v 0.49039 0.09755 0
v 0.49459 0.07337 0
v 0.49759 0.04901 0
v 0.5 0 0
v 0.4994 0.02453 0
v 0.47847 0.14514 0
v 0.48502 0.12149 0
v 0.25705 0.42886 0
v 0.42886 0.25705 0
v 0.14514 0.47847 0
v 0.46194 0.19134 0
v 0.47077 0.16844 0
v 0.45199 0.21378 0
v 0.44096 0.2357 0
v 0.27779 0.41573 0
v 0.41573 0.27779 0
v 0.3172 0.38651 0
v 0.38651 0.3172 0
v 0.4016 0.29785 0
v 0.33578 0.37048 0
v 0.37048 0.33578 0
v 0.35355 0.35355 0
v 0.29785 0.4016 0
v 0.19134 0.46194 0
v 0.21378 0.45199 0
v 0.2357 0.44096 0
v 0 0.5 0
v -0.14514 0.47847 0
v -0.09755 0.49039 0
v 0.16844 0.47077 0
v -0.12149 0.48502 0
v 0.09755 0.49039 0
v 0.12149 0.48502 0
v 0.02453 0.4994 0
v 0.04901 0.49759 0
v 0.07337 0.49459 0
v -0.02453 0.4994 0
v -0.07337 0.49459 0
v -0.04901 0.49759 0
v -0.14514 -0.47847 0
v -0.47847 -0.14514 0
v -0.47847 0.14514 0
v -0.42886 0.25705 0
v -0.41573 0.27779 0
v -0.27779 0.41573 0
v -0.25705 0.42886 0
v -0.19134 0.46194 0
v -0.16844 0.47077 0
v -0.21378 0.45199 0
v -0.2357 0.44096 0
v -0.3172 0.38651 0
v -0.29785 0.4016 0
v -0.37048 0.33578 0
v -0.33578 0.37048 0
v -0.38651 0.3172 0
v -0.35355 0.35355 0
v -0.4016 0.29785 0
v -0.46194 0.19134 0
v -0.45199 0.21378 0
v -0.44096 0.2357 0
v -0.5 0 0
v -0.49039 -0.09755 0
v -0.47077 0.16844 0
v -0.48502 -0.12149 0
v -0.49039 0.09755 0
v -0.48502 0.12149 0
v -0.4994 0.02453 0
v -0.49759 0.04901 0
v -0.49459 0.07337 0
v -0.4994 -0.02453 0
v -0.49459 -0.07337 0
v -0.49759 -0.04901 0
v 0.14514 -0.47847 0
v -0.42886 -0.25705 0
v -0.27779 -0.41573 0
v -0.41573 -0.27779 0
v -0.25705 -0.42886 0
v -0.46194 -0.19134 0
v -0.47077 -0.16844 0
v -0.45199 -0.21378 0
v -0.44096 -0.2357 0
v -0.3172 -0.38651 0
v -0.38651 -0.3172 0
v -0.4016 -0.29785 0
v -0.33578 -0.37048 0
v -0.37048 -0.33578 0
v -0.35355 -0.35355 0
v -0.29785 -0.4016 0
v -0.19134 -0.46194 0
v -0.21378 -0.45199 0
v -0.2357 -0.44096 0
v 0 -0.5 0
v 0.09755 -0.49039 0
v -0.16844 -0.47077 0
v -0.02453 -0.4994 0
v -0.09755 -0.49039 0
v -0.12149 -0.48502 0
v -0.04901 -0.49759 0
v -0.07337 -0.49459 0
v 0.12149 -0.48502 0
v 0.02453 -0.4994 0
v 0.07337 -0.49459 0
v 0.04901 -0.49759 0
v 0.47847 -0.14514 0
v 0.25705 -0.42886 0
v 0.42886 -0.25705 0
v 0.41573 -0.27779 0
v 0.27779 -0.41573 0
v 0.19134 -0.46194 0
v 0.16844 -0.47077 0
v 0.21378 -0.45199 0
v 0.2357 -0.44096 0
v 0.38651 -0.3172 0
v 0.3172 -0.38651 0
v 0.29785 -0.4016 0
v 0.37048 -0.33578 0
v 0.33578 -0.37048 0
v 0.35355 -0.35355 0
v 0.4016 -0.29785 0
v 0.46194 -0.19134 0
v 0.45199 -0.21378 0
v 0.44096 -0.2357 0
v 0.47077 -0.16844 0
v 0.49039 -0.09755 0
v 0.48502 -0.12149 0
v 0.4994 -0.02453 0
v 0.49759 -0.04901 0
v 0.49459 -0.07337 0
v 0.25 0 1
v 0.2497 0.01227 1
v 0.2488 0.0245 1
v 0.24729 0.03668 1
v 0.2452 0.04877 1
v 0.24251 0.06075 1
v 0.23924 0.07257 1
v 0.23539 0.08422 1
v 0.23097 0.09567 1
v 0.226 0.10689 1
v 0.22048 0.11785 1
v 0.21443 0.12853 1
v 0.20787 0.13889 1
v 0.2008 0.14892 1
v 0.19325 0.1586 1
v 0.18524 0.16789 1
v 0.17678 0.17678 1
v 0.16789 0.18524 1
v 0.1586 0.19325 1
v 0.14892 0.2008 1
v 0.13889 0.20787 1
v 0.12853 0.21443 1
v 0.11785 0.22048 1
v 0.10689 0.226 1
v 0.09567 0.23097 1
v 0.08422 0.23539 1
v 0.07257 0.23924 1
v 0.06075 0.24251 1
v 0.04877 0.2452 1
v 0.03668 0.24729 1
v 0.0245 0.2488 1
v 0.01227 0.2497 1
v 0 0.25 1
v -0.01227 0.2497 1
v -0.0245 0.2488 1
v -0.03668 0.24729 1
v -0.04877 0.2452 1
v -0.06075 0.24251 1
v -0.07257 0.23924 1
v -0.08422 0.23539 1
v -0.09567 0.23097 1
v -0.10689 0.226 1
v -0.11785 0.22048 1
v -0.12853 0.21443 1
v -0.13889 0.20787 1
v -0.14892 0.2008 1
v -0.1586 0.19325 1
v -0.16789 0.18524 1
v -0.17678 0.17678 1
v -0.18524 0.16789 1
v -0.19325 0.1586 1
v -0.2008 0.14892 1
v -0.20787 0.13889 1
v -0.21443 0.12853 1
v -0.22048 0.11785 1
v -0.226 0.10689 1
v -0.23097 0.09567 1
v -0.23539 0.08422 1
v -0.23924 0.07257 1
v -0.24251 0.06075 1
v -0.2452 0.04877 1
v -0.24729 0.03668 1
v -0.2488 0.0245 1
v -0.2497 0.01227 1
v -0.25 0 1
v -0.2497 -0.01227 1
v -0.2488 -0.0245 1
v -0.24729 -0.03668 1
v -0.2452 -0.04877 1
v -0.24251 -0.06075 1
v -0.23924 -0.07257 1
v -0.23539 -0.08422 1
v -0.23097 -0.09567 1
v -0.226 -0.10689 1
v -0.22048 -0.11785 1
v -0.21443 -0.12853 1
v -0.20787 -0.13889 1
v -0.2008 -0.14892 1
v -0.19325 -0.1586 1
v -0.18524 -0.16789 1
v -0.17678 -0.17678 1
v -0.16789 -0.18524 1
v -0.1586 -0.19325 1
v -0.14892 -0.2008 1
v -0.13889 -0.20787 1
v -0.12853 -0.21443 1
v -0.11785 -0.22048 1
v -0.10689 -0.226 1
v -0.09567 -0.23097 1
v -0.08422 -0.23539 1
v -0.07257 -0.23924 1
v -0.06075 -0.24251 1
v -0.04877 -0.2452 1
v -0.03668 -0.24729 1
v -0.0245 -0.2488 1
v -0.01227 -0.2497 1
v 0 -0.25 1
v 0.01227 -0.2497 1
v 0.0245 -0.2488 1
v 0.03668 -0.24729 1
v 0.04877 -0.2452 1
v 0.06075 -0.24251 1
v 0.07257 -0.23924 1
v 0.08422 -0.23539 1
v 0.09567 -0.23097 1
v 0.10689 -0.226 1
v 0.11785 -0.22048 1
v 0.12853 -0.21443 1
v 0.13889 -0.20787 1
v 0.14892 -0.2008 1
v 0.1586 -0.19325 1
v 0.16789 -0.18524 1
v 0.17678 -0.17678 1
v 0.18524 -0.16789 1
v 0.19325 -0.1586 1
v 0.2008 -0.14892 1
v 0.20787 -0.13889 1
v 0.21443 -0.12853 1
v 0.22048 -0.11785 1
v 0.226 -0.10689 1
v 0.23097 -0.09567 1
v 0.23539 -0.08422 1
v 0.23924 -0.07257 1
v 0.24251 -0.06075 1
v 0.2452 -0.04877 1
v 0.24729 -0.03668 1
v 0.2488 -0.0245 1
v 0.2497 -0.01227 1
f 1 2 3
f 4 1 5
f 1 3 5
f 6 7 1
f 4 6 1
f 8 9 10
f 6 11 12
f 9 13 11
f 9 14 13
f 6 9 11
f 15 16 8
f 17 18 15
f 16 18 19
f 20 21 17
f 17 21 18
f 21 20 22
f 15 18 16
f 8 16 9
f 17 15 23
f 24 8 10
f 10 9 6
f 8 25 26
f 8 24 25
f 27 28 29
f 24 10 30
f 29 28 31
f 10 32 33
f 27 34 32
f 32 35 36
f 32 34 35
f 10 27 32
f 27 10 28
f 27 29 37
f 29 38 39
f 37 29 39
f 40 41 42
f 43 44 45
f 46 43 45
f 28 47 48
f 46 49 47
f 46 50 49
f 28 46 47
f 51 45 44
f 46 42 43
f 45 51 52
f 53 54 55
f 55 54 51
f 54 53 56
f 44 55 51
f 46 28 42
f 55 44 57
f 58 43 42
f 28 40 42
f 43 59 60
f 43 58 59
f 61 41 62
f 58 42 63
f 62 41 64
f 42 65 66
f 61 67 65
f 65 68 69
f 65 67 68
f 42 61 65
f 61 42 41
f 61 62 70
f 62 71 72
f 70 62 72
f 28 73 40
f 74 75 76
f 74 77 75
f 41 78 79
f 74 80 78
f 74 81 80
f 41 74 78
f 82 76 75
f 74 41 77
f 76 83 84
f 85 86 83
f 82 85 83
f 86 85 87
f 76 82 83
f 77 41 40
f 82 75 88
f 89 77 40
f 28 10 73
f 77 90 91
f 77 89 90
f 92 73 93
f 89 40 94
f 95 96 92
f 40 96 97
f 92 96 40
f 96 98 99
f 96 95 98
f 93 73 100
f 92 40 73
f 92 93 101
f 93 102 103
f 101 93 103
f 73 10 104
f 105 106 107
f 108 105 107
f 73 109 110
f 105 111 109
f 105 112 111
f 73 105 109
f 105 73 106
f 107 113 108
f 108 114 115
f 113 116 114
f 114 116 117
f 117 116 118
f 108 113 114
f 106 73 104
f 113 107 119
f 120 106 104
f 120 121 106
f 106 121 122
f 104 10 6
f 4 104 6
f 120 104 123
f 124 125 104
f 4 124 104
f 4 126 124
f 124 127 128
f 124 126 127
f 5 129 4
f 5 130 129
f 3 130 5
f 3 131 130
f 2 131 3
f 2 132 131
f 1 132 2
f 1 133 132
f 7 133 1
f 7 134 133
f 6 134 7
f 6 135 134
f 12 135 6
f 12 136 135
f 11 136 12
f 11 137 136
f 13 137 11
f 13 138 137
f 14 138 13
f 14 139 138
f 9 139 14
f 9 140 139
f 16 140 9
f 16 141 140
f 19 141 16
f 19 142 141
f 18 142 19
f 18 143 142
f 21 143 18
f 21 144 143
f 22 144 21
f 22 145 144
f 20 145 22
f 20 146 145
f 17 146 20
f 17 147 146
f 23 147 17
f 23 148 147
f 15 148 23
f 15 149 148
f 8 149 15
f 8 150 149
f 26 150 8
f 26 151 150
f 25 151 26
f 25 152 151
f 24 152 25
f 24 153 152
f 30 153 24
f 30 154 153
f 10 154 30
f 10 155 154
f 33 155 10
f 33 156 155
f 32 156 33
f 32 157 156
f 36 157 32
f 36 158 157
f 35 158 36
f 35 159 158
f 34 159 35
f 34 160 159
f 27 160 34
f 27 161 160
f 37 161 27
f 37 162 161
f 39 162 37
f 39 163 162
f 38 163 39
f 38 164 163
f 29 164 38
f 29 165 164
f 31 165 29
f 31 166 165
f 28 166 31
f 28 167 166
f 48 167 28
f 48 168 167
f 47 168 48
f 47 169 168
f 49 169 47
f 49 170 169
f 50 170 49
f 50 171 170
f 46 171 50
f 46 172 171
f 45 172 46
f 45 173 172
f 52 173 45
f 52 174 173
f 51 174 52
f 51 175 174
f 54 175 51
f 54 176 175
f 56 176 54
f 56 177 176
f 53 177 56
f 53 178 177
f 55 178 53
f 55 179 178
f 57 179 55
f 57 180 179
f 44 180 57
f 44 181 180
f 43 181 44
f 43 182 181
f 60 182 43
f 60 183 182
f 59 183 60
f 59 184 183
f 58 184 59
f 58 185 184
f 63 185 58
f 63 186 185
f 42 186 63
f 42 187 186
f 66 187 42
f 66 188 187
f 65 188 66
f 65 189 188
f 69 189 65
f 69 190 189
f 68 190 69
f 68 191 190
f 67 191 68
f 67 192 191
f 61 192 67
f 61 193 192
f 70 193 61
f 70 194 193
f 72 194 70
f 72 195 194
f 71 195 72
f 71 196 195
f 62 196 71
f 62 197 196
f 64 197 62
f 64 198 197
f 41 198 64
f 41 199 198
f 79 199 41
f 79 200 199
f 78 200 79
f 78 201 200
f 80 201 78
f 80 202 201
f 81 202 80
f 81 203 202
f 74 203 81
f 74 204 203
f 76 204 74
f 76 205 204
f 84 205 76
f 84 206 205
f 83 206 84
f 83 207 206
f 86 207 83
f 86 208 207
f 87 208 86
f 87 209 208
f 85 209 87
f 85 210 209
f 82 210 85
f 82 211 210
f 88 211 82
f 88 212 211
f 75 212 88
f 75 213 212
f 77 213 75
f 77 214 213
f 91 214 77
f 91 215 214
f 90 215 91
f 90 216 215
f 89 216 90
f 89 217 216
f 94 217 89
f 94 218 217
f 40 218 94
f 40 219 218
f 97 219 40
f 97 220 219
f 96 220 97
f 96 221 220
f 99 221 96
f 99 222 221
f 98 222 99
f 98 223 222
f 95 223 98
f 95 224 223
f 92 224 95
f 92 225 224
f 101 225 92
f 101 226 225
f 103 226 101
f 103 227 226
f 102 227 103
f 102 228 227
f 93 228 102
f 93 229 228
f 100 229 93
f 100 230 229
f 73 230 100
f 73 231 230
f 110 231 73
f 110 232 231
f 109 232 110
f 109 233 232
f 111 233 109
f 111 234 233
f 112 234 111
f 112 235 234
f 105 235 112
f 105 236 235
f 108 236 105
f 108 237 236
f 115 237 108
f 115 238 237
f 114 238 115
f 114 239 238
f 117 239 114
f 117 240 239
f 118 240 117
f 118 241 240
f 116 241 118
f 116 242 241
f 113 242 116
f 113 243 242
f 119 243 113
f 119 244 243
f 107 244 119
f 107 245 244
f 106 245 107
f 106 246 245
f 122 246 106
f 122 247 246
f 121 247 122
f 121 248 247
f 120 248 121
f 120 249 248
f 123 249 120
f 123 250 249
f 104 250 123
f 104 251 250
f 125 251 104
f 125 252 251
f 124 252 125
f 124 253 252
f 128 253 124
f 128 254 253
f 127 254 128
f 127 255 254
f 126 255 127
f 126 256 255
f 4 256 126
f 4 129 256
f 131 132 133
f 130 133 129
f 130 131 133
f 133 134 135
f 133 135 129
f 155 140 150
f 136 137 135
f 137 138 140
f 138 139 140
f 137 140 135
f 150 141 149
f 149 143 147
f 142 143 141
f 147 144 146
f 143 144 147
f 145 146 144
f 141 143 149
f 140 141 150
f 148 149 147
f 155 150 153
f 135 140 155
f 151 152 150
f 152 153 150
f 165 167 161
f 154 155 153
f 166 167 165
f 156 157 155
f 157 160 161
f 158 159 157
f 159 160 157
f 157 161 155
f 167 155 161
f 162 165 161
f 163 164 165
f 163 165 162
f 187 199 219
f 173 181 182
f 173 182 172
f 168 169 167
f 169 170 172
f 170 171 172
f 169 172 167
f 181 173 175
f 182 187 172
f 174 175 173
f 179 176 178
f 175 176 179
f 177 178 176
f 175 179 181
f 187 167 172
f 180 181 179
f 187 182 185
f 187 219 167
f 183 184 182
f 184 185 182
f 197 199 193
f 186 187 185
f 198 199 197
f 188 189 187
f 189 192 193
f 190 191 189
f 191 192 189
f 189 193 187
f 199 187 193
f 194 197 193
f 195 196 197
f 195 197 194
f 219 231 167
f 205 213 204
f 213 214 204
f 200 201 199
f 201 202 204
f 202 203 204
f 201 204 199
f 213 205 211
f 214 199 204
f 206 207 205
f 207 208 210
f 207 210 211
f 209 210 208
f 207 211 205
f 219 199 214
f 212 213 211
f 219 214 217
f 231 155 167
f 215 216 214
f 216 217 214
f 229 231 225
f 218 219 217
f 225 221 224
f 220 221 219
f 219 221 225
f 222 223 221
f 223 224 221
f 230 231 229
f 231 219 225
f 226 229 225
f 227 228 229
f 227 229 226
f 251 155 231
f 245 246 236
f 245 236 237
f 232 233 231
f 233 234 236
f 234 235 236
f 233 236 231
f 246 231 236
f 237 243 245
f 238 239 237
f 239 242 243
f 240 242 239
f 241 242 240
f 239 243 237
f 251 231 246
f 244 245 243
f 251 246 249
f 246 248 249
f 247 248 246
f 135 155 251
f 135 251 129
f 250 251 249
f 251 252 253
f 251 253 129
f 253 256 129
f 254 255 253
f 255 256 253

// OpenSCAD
// Frustum for Basic Shapes
// by Slashee the Cow
$fn = 128;

linear_extrude(1, false, scale = 0.5)
circle(d=1);
